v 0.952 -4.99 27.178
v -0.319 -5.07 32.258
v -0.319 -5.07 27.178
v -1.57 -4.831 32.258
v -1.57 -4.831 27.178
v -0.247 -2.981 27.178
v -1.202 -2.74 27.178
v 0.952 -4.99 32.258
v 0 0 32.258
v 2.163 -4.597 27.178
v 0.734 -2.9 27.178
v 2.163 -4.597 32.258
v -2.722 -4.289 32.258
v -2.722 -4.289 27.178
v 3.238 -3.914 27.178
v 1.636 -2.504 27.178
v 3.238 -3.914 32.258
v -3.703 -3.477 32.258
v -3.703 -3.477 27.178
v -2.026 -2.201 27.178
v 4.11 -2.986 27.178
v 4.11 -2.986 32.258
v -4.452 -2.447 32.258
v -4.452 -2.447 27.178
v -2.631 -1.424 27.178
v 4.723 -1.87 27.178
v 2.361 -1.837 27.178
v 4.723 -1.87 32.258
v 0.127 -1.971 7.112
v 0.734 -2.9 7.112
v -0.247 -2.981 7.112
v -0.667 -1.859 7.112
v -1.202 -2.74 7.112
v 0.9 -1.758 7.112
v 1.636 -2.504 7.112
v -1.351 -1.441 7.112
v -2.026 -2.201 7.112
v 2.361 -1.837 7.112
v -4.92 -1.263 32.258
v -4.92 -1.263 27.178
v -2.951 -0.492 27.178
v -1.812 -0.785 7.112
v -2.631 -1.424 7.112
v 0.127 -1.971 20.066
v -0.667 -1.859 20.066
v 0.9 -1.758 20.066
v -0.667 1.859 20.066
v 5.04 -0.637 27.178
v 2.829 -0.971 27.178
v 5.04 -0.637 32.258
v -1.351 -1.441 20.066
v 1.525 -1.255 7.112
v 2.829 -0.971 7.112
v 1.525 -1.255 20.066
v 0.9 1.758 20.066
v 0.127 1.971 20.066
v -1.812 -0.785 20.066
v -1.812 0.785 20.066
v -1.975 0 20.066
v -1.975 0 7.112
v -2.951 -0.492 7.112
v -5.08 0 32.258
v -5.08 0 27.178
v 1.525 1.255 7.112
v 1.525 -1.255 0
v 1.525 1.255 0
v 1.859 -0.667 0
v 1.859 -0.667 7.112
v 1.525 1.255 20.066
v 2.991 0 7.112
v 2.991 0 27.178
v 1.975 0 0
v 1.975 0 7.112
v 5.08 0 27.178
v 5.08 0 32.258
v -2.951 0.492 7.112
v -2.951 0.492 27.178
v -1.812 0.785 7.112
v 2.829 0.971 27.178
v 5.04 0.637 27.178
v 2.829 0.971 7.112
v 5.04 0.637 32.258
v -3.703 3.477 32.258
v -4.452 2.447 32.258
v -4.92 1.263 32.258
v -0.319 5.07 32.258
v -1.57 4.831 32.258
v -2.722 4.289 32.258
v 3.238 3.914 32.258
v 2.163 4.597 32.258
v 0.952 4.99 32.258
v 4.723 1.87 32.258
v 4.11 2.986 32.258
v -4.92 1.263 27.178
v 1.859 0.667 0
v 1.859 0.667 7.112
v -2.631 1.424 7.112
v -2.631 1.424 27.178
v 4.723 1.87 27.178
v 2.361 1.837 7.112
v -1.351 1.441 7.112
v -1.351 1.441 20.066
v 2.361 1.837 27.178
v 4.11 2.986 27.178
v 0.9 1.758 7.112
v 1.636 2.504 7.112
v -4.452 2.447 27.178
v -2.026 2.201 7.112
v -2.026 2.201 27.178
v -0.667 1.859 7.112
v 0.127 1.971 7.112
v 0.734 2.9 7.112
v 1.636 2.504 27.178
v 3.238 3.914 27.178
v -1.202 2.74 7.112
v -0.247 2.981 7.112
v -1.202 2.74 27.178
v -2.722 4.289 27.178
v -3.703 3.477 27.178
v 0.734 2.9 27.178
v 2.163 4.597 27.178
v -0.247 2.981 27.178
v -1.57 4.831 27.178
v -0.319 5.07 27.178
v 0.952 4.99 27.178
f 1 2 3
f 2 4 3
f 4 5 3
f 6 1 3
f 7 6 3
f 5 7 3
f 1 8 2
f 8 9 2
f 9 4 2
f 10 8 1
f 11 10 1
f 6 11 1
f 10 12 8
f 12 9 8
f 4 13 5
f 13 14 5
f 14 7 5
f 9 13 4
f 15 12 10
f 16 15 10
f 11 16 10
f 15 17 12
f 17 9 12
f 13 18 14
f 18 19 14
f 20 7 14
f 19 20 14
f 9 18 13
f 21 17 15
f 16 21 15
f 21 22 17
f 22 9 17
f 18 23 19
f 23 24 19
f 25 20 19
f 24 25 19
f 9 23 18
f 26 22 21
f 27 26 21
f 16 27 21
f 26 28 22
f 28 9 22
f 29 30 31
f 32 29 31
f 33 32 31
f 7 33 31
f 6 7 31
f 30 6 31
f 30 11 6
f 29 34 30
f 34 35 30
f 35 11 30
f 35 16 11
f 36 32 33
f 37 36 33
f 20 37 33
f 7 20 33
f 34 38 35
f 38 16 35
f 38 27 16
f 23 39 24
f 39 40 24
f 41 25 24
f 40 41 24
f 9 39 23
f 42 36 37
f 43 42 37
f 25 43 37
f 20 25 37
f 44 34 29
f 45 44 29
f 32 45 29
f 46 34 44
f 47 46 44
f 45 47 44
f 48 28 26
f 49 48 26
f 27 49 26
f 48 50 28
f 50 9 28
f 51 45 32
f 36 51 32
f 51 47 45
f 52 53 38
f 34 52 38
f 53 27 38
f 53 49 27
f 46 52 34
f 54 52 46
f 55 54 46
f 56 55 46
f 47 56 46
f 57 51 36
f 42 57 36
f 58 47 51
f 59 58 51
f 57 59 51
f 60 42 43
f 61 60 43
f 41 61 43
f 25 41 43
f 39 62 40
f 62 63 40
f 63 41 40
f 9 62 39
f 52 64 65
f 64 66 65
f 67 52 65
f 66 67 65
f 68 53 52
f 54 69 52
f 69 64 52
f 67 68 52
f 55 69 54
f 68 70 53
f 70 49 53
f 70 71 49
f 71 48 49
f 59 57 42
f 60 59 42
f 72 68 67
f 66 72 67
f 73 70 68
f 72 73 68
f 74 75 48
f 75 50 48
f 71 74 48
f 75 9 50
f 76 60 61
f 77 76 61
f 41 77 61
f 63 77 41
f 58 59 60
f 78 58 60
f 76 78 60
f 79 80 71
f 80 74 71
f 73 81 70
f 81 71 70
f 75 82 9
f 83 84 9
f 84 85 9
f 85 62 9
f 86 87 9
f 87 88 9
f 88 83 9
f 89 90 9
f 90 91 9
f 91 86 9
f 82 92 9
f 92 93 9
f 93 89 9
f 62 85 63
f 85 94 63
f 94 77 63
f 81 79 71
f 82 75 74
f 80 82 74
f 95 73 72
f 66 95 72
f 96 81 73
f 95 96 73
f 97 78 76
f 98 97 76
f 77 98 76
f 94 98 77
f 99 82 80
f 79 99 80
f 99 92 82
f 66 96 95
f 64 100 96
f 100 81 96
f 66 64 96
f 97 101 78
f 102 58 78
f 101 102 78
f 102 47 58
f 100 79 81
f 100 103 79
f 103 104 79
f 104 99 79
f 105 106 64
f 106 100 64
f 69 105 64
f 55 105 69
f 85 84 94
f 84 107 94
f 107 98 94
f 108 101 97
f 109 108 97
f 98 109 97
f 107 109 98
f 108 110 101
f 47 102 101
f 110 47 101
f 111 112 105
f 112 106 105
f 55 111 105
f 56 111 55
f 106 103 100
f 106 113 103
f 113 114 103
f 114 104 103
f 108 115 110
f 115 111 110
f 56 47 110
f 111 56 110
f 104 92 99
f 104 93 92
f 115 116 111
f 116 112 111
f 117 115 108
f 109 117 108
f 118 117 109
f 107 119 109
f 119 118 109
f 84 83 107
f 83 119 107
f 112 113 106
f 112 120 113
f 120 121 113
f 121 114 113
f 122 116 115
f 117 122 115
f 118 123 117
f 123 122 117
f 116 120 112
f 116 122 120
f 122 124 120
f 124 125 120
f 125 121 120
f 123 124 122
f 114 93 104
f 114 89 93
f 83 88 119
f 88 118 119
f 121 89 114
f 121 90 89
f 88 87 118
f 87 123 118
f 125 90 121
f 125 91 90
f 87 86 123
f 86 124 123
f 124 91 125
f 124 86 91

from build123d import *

# Parameters (mm, degrees)
BOSS_EXTRUDE1_DEPTH = 9.906
SKETCH6_R           = 1.975
BOSS_EXTRUDE2_DEPTH = 17.272
SKETCH7_R           = 2.99147738
BOSS_EXTRUDE3_DEPTH = 20.066
CUT_EXTRUDE1_DEPTH  = 20.066
SKETCH9_R           = 5.08
BOSS_EXTRUDE4_DEPTH = 5.08


with BuildPart() as part:
    # Sketch5 → Boss-Extrude1 (new body)
    with BuildSketch(Plane.XY):
        with BuildLine():
            Line((1.525, 0), (1.525, 1.25499004))
            ThreePointArc((1.525, 1.25499004), (1.975, 0), (1.525, -1.25499004))
            Line((1.525, -1.25499004), (1.525, 0))
        make_face()
    extrude(amount=BOSS_EXTRUDE1_DEPTH)

    # Sketch6 → Boss-Extrude2 (add)
    with BuildSketch(Plane.XY.offset(9.906)):
        Circle(SKETCH6_R)
    extrude(amount=BOSS_EXTRUDE2_DEPTH)

    # Sketch7 → Boss-Extrude3 (add)
    with BuildSketch(Plane.XY.offset(27.178)):
        Circle(SKETCH7_R)
    extrude(amount=-BOSS_EXTRUDE3_DEPTH)

    # Sketch8 → Cut-Extrude1 (cut)
    with BuildSketch(Plane.XY):
        with BuildLine():
            Line((1.525, 1.25499004), (1.525, 0))
            Line((1.525, 0), (1.525, -1.25499004))
            ThreePointArc((1.525, -1.25499004), (-1.975, 0), (1.525, 1.25499004))
        make_face()
    extrude(amount=CUT_EXTRUDE1_DEPTH, mode=Mode.SUBTRACT)

    # Sketch9 → Boss-Extrude4 (add)
    with BuildSketch(Plane.XY.offset(27.178)):
        Circle(SKETCH9_R)
    extrude(amount=BOSS_EXTRUDE4_DEPTH)


solid = part.part
